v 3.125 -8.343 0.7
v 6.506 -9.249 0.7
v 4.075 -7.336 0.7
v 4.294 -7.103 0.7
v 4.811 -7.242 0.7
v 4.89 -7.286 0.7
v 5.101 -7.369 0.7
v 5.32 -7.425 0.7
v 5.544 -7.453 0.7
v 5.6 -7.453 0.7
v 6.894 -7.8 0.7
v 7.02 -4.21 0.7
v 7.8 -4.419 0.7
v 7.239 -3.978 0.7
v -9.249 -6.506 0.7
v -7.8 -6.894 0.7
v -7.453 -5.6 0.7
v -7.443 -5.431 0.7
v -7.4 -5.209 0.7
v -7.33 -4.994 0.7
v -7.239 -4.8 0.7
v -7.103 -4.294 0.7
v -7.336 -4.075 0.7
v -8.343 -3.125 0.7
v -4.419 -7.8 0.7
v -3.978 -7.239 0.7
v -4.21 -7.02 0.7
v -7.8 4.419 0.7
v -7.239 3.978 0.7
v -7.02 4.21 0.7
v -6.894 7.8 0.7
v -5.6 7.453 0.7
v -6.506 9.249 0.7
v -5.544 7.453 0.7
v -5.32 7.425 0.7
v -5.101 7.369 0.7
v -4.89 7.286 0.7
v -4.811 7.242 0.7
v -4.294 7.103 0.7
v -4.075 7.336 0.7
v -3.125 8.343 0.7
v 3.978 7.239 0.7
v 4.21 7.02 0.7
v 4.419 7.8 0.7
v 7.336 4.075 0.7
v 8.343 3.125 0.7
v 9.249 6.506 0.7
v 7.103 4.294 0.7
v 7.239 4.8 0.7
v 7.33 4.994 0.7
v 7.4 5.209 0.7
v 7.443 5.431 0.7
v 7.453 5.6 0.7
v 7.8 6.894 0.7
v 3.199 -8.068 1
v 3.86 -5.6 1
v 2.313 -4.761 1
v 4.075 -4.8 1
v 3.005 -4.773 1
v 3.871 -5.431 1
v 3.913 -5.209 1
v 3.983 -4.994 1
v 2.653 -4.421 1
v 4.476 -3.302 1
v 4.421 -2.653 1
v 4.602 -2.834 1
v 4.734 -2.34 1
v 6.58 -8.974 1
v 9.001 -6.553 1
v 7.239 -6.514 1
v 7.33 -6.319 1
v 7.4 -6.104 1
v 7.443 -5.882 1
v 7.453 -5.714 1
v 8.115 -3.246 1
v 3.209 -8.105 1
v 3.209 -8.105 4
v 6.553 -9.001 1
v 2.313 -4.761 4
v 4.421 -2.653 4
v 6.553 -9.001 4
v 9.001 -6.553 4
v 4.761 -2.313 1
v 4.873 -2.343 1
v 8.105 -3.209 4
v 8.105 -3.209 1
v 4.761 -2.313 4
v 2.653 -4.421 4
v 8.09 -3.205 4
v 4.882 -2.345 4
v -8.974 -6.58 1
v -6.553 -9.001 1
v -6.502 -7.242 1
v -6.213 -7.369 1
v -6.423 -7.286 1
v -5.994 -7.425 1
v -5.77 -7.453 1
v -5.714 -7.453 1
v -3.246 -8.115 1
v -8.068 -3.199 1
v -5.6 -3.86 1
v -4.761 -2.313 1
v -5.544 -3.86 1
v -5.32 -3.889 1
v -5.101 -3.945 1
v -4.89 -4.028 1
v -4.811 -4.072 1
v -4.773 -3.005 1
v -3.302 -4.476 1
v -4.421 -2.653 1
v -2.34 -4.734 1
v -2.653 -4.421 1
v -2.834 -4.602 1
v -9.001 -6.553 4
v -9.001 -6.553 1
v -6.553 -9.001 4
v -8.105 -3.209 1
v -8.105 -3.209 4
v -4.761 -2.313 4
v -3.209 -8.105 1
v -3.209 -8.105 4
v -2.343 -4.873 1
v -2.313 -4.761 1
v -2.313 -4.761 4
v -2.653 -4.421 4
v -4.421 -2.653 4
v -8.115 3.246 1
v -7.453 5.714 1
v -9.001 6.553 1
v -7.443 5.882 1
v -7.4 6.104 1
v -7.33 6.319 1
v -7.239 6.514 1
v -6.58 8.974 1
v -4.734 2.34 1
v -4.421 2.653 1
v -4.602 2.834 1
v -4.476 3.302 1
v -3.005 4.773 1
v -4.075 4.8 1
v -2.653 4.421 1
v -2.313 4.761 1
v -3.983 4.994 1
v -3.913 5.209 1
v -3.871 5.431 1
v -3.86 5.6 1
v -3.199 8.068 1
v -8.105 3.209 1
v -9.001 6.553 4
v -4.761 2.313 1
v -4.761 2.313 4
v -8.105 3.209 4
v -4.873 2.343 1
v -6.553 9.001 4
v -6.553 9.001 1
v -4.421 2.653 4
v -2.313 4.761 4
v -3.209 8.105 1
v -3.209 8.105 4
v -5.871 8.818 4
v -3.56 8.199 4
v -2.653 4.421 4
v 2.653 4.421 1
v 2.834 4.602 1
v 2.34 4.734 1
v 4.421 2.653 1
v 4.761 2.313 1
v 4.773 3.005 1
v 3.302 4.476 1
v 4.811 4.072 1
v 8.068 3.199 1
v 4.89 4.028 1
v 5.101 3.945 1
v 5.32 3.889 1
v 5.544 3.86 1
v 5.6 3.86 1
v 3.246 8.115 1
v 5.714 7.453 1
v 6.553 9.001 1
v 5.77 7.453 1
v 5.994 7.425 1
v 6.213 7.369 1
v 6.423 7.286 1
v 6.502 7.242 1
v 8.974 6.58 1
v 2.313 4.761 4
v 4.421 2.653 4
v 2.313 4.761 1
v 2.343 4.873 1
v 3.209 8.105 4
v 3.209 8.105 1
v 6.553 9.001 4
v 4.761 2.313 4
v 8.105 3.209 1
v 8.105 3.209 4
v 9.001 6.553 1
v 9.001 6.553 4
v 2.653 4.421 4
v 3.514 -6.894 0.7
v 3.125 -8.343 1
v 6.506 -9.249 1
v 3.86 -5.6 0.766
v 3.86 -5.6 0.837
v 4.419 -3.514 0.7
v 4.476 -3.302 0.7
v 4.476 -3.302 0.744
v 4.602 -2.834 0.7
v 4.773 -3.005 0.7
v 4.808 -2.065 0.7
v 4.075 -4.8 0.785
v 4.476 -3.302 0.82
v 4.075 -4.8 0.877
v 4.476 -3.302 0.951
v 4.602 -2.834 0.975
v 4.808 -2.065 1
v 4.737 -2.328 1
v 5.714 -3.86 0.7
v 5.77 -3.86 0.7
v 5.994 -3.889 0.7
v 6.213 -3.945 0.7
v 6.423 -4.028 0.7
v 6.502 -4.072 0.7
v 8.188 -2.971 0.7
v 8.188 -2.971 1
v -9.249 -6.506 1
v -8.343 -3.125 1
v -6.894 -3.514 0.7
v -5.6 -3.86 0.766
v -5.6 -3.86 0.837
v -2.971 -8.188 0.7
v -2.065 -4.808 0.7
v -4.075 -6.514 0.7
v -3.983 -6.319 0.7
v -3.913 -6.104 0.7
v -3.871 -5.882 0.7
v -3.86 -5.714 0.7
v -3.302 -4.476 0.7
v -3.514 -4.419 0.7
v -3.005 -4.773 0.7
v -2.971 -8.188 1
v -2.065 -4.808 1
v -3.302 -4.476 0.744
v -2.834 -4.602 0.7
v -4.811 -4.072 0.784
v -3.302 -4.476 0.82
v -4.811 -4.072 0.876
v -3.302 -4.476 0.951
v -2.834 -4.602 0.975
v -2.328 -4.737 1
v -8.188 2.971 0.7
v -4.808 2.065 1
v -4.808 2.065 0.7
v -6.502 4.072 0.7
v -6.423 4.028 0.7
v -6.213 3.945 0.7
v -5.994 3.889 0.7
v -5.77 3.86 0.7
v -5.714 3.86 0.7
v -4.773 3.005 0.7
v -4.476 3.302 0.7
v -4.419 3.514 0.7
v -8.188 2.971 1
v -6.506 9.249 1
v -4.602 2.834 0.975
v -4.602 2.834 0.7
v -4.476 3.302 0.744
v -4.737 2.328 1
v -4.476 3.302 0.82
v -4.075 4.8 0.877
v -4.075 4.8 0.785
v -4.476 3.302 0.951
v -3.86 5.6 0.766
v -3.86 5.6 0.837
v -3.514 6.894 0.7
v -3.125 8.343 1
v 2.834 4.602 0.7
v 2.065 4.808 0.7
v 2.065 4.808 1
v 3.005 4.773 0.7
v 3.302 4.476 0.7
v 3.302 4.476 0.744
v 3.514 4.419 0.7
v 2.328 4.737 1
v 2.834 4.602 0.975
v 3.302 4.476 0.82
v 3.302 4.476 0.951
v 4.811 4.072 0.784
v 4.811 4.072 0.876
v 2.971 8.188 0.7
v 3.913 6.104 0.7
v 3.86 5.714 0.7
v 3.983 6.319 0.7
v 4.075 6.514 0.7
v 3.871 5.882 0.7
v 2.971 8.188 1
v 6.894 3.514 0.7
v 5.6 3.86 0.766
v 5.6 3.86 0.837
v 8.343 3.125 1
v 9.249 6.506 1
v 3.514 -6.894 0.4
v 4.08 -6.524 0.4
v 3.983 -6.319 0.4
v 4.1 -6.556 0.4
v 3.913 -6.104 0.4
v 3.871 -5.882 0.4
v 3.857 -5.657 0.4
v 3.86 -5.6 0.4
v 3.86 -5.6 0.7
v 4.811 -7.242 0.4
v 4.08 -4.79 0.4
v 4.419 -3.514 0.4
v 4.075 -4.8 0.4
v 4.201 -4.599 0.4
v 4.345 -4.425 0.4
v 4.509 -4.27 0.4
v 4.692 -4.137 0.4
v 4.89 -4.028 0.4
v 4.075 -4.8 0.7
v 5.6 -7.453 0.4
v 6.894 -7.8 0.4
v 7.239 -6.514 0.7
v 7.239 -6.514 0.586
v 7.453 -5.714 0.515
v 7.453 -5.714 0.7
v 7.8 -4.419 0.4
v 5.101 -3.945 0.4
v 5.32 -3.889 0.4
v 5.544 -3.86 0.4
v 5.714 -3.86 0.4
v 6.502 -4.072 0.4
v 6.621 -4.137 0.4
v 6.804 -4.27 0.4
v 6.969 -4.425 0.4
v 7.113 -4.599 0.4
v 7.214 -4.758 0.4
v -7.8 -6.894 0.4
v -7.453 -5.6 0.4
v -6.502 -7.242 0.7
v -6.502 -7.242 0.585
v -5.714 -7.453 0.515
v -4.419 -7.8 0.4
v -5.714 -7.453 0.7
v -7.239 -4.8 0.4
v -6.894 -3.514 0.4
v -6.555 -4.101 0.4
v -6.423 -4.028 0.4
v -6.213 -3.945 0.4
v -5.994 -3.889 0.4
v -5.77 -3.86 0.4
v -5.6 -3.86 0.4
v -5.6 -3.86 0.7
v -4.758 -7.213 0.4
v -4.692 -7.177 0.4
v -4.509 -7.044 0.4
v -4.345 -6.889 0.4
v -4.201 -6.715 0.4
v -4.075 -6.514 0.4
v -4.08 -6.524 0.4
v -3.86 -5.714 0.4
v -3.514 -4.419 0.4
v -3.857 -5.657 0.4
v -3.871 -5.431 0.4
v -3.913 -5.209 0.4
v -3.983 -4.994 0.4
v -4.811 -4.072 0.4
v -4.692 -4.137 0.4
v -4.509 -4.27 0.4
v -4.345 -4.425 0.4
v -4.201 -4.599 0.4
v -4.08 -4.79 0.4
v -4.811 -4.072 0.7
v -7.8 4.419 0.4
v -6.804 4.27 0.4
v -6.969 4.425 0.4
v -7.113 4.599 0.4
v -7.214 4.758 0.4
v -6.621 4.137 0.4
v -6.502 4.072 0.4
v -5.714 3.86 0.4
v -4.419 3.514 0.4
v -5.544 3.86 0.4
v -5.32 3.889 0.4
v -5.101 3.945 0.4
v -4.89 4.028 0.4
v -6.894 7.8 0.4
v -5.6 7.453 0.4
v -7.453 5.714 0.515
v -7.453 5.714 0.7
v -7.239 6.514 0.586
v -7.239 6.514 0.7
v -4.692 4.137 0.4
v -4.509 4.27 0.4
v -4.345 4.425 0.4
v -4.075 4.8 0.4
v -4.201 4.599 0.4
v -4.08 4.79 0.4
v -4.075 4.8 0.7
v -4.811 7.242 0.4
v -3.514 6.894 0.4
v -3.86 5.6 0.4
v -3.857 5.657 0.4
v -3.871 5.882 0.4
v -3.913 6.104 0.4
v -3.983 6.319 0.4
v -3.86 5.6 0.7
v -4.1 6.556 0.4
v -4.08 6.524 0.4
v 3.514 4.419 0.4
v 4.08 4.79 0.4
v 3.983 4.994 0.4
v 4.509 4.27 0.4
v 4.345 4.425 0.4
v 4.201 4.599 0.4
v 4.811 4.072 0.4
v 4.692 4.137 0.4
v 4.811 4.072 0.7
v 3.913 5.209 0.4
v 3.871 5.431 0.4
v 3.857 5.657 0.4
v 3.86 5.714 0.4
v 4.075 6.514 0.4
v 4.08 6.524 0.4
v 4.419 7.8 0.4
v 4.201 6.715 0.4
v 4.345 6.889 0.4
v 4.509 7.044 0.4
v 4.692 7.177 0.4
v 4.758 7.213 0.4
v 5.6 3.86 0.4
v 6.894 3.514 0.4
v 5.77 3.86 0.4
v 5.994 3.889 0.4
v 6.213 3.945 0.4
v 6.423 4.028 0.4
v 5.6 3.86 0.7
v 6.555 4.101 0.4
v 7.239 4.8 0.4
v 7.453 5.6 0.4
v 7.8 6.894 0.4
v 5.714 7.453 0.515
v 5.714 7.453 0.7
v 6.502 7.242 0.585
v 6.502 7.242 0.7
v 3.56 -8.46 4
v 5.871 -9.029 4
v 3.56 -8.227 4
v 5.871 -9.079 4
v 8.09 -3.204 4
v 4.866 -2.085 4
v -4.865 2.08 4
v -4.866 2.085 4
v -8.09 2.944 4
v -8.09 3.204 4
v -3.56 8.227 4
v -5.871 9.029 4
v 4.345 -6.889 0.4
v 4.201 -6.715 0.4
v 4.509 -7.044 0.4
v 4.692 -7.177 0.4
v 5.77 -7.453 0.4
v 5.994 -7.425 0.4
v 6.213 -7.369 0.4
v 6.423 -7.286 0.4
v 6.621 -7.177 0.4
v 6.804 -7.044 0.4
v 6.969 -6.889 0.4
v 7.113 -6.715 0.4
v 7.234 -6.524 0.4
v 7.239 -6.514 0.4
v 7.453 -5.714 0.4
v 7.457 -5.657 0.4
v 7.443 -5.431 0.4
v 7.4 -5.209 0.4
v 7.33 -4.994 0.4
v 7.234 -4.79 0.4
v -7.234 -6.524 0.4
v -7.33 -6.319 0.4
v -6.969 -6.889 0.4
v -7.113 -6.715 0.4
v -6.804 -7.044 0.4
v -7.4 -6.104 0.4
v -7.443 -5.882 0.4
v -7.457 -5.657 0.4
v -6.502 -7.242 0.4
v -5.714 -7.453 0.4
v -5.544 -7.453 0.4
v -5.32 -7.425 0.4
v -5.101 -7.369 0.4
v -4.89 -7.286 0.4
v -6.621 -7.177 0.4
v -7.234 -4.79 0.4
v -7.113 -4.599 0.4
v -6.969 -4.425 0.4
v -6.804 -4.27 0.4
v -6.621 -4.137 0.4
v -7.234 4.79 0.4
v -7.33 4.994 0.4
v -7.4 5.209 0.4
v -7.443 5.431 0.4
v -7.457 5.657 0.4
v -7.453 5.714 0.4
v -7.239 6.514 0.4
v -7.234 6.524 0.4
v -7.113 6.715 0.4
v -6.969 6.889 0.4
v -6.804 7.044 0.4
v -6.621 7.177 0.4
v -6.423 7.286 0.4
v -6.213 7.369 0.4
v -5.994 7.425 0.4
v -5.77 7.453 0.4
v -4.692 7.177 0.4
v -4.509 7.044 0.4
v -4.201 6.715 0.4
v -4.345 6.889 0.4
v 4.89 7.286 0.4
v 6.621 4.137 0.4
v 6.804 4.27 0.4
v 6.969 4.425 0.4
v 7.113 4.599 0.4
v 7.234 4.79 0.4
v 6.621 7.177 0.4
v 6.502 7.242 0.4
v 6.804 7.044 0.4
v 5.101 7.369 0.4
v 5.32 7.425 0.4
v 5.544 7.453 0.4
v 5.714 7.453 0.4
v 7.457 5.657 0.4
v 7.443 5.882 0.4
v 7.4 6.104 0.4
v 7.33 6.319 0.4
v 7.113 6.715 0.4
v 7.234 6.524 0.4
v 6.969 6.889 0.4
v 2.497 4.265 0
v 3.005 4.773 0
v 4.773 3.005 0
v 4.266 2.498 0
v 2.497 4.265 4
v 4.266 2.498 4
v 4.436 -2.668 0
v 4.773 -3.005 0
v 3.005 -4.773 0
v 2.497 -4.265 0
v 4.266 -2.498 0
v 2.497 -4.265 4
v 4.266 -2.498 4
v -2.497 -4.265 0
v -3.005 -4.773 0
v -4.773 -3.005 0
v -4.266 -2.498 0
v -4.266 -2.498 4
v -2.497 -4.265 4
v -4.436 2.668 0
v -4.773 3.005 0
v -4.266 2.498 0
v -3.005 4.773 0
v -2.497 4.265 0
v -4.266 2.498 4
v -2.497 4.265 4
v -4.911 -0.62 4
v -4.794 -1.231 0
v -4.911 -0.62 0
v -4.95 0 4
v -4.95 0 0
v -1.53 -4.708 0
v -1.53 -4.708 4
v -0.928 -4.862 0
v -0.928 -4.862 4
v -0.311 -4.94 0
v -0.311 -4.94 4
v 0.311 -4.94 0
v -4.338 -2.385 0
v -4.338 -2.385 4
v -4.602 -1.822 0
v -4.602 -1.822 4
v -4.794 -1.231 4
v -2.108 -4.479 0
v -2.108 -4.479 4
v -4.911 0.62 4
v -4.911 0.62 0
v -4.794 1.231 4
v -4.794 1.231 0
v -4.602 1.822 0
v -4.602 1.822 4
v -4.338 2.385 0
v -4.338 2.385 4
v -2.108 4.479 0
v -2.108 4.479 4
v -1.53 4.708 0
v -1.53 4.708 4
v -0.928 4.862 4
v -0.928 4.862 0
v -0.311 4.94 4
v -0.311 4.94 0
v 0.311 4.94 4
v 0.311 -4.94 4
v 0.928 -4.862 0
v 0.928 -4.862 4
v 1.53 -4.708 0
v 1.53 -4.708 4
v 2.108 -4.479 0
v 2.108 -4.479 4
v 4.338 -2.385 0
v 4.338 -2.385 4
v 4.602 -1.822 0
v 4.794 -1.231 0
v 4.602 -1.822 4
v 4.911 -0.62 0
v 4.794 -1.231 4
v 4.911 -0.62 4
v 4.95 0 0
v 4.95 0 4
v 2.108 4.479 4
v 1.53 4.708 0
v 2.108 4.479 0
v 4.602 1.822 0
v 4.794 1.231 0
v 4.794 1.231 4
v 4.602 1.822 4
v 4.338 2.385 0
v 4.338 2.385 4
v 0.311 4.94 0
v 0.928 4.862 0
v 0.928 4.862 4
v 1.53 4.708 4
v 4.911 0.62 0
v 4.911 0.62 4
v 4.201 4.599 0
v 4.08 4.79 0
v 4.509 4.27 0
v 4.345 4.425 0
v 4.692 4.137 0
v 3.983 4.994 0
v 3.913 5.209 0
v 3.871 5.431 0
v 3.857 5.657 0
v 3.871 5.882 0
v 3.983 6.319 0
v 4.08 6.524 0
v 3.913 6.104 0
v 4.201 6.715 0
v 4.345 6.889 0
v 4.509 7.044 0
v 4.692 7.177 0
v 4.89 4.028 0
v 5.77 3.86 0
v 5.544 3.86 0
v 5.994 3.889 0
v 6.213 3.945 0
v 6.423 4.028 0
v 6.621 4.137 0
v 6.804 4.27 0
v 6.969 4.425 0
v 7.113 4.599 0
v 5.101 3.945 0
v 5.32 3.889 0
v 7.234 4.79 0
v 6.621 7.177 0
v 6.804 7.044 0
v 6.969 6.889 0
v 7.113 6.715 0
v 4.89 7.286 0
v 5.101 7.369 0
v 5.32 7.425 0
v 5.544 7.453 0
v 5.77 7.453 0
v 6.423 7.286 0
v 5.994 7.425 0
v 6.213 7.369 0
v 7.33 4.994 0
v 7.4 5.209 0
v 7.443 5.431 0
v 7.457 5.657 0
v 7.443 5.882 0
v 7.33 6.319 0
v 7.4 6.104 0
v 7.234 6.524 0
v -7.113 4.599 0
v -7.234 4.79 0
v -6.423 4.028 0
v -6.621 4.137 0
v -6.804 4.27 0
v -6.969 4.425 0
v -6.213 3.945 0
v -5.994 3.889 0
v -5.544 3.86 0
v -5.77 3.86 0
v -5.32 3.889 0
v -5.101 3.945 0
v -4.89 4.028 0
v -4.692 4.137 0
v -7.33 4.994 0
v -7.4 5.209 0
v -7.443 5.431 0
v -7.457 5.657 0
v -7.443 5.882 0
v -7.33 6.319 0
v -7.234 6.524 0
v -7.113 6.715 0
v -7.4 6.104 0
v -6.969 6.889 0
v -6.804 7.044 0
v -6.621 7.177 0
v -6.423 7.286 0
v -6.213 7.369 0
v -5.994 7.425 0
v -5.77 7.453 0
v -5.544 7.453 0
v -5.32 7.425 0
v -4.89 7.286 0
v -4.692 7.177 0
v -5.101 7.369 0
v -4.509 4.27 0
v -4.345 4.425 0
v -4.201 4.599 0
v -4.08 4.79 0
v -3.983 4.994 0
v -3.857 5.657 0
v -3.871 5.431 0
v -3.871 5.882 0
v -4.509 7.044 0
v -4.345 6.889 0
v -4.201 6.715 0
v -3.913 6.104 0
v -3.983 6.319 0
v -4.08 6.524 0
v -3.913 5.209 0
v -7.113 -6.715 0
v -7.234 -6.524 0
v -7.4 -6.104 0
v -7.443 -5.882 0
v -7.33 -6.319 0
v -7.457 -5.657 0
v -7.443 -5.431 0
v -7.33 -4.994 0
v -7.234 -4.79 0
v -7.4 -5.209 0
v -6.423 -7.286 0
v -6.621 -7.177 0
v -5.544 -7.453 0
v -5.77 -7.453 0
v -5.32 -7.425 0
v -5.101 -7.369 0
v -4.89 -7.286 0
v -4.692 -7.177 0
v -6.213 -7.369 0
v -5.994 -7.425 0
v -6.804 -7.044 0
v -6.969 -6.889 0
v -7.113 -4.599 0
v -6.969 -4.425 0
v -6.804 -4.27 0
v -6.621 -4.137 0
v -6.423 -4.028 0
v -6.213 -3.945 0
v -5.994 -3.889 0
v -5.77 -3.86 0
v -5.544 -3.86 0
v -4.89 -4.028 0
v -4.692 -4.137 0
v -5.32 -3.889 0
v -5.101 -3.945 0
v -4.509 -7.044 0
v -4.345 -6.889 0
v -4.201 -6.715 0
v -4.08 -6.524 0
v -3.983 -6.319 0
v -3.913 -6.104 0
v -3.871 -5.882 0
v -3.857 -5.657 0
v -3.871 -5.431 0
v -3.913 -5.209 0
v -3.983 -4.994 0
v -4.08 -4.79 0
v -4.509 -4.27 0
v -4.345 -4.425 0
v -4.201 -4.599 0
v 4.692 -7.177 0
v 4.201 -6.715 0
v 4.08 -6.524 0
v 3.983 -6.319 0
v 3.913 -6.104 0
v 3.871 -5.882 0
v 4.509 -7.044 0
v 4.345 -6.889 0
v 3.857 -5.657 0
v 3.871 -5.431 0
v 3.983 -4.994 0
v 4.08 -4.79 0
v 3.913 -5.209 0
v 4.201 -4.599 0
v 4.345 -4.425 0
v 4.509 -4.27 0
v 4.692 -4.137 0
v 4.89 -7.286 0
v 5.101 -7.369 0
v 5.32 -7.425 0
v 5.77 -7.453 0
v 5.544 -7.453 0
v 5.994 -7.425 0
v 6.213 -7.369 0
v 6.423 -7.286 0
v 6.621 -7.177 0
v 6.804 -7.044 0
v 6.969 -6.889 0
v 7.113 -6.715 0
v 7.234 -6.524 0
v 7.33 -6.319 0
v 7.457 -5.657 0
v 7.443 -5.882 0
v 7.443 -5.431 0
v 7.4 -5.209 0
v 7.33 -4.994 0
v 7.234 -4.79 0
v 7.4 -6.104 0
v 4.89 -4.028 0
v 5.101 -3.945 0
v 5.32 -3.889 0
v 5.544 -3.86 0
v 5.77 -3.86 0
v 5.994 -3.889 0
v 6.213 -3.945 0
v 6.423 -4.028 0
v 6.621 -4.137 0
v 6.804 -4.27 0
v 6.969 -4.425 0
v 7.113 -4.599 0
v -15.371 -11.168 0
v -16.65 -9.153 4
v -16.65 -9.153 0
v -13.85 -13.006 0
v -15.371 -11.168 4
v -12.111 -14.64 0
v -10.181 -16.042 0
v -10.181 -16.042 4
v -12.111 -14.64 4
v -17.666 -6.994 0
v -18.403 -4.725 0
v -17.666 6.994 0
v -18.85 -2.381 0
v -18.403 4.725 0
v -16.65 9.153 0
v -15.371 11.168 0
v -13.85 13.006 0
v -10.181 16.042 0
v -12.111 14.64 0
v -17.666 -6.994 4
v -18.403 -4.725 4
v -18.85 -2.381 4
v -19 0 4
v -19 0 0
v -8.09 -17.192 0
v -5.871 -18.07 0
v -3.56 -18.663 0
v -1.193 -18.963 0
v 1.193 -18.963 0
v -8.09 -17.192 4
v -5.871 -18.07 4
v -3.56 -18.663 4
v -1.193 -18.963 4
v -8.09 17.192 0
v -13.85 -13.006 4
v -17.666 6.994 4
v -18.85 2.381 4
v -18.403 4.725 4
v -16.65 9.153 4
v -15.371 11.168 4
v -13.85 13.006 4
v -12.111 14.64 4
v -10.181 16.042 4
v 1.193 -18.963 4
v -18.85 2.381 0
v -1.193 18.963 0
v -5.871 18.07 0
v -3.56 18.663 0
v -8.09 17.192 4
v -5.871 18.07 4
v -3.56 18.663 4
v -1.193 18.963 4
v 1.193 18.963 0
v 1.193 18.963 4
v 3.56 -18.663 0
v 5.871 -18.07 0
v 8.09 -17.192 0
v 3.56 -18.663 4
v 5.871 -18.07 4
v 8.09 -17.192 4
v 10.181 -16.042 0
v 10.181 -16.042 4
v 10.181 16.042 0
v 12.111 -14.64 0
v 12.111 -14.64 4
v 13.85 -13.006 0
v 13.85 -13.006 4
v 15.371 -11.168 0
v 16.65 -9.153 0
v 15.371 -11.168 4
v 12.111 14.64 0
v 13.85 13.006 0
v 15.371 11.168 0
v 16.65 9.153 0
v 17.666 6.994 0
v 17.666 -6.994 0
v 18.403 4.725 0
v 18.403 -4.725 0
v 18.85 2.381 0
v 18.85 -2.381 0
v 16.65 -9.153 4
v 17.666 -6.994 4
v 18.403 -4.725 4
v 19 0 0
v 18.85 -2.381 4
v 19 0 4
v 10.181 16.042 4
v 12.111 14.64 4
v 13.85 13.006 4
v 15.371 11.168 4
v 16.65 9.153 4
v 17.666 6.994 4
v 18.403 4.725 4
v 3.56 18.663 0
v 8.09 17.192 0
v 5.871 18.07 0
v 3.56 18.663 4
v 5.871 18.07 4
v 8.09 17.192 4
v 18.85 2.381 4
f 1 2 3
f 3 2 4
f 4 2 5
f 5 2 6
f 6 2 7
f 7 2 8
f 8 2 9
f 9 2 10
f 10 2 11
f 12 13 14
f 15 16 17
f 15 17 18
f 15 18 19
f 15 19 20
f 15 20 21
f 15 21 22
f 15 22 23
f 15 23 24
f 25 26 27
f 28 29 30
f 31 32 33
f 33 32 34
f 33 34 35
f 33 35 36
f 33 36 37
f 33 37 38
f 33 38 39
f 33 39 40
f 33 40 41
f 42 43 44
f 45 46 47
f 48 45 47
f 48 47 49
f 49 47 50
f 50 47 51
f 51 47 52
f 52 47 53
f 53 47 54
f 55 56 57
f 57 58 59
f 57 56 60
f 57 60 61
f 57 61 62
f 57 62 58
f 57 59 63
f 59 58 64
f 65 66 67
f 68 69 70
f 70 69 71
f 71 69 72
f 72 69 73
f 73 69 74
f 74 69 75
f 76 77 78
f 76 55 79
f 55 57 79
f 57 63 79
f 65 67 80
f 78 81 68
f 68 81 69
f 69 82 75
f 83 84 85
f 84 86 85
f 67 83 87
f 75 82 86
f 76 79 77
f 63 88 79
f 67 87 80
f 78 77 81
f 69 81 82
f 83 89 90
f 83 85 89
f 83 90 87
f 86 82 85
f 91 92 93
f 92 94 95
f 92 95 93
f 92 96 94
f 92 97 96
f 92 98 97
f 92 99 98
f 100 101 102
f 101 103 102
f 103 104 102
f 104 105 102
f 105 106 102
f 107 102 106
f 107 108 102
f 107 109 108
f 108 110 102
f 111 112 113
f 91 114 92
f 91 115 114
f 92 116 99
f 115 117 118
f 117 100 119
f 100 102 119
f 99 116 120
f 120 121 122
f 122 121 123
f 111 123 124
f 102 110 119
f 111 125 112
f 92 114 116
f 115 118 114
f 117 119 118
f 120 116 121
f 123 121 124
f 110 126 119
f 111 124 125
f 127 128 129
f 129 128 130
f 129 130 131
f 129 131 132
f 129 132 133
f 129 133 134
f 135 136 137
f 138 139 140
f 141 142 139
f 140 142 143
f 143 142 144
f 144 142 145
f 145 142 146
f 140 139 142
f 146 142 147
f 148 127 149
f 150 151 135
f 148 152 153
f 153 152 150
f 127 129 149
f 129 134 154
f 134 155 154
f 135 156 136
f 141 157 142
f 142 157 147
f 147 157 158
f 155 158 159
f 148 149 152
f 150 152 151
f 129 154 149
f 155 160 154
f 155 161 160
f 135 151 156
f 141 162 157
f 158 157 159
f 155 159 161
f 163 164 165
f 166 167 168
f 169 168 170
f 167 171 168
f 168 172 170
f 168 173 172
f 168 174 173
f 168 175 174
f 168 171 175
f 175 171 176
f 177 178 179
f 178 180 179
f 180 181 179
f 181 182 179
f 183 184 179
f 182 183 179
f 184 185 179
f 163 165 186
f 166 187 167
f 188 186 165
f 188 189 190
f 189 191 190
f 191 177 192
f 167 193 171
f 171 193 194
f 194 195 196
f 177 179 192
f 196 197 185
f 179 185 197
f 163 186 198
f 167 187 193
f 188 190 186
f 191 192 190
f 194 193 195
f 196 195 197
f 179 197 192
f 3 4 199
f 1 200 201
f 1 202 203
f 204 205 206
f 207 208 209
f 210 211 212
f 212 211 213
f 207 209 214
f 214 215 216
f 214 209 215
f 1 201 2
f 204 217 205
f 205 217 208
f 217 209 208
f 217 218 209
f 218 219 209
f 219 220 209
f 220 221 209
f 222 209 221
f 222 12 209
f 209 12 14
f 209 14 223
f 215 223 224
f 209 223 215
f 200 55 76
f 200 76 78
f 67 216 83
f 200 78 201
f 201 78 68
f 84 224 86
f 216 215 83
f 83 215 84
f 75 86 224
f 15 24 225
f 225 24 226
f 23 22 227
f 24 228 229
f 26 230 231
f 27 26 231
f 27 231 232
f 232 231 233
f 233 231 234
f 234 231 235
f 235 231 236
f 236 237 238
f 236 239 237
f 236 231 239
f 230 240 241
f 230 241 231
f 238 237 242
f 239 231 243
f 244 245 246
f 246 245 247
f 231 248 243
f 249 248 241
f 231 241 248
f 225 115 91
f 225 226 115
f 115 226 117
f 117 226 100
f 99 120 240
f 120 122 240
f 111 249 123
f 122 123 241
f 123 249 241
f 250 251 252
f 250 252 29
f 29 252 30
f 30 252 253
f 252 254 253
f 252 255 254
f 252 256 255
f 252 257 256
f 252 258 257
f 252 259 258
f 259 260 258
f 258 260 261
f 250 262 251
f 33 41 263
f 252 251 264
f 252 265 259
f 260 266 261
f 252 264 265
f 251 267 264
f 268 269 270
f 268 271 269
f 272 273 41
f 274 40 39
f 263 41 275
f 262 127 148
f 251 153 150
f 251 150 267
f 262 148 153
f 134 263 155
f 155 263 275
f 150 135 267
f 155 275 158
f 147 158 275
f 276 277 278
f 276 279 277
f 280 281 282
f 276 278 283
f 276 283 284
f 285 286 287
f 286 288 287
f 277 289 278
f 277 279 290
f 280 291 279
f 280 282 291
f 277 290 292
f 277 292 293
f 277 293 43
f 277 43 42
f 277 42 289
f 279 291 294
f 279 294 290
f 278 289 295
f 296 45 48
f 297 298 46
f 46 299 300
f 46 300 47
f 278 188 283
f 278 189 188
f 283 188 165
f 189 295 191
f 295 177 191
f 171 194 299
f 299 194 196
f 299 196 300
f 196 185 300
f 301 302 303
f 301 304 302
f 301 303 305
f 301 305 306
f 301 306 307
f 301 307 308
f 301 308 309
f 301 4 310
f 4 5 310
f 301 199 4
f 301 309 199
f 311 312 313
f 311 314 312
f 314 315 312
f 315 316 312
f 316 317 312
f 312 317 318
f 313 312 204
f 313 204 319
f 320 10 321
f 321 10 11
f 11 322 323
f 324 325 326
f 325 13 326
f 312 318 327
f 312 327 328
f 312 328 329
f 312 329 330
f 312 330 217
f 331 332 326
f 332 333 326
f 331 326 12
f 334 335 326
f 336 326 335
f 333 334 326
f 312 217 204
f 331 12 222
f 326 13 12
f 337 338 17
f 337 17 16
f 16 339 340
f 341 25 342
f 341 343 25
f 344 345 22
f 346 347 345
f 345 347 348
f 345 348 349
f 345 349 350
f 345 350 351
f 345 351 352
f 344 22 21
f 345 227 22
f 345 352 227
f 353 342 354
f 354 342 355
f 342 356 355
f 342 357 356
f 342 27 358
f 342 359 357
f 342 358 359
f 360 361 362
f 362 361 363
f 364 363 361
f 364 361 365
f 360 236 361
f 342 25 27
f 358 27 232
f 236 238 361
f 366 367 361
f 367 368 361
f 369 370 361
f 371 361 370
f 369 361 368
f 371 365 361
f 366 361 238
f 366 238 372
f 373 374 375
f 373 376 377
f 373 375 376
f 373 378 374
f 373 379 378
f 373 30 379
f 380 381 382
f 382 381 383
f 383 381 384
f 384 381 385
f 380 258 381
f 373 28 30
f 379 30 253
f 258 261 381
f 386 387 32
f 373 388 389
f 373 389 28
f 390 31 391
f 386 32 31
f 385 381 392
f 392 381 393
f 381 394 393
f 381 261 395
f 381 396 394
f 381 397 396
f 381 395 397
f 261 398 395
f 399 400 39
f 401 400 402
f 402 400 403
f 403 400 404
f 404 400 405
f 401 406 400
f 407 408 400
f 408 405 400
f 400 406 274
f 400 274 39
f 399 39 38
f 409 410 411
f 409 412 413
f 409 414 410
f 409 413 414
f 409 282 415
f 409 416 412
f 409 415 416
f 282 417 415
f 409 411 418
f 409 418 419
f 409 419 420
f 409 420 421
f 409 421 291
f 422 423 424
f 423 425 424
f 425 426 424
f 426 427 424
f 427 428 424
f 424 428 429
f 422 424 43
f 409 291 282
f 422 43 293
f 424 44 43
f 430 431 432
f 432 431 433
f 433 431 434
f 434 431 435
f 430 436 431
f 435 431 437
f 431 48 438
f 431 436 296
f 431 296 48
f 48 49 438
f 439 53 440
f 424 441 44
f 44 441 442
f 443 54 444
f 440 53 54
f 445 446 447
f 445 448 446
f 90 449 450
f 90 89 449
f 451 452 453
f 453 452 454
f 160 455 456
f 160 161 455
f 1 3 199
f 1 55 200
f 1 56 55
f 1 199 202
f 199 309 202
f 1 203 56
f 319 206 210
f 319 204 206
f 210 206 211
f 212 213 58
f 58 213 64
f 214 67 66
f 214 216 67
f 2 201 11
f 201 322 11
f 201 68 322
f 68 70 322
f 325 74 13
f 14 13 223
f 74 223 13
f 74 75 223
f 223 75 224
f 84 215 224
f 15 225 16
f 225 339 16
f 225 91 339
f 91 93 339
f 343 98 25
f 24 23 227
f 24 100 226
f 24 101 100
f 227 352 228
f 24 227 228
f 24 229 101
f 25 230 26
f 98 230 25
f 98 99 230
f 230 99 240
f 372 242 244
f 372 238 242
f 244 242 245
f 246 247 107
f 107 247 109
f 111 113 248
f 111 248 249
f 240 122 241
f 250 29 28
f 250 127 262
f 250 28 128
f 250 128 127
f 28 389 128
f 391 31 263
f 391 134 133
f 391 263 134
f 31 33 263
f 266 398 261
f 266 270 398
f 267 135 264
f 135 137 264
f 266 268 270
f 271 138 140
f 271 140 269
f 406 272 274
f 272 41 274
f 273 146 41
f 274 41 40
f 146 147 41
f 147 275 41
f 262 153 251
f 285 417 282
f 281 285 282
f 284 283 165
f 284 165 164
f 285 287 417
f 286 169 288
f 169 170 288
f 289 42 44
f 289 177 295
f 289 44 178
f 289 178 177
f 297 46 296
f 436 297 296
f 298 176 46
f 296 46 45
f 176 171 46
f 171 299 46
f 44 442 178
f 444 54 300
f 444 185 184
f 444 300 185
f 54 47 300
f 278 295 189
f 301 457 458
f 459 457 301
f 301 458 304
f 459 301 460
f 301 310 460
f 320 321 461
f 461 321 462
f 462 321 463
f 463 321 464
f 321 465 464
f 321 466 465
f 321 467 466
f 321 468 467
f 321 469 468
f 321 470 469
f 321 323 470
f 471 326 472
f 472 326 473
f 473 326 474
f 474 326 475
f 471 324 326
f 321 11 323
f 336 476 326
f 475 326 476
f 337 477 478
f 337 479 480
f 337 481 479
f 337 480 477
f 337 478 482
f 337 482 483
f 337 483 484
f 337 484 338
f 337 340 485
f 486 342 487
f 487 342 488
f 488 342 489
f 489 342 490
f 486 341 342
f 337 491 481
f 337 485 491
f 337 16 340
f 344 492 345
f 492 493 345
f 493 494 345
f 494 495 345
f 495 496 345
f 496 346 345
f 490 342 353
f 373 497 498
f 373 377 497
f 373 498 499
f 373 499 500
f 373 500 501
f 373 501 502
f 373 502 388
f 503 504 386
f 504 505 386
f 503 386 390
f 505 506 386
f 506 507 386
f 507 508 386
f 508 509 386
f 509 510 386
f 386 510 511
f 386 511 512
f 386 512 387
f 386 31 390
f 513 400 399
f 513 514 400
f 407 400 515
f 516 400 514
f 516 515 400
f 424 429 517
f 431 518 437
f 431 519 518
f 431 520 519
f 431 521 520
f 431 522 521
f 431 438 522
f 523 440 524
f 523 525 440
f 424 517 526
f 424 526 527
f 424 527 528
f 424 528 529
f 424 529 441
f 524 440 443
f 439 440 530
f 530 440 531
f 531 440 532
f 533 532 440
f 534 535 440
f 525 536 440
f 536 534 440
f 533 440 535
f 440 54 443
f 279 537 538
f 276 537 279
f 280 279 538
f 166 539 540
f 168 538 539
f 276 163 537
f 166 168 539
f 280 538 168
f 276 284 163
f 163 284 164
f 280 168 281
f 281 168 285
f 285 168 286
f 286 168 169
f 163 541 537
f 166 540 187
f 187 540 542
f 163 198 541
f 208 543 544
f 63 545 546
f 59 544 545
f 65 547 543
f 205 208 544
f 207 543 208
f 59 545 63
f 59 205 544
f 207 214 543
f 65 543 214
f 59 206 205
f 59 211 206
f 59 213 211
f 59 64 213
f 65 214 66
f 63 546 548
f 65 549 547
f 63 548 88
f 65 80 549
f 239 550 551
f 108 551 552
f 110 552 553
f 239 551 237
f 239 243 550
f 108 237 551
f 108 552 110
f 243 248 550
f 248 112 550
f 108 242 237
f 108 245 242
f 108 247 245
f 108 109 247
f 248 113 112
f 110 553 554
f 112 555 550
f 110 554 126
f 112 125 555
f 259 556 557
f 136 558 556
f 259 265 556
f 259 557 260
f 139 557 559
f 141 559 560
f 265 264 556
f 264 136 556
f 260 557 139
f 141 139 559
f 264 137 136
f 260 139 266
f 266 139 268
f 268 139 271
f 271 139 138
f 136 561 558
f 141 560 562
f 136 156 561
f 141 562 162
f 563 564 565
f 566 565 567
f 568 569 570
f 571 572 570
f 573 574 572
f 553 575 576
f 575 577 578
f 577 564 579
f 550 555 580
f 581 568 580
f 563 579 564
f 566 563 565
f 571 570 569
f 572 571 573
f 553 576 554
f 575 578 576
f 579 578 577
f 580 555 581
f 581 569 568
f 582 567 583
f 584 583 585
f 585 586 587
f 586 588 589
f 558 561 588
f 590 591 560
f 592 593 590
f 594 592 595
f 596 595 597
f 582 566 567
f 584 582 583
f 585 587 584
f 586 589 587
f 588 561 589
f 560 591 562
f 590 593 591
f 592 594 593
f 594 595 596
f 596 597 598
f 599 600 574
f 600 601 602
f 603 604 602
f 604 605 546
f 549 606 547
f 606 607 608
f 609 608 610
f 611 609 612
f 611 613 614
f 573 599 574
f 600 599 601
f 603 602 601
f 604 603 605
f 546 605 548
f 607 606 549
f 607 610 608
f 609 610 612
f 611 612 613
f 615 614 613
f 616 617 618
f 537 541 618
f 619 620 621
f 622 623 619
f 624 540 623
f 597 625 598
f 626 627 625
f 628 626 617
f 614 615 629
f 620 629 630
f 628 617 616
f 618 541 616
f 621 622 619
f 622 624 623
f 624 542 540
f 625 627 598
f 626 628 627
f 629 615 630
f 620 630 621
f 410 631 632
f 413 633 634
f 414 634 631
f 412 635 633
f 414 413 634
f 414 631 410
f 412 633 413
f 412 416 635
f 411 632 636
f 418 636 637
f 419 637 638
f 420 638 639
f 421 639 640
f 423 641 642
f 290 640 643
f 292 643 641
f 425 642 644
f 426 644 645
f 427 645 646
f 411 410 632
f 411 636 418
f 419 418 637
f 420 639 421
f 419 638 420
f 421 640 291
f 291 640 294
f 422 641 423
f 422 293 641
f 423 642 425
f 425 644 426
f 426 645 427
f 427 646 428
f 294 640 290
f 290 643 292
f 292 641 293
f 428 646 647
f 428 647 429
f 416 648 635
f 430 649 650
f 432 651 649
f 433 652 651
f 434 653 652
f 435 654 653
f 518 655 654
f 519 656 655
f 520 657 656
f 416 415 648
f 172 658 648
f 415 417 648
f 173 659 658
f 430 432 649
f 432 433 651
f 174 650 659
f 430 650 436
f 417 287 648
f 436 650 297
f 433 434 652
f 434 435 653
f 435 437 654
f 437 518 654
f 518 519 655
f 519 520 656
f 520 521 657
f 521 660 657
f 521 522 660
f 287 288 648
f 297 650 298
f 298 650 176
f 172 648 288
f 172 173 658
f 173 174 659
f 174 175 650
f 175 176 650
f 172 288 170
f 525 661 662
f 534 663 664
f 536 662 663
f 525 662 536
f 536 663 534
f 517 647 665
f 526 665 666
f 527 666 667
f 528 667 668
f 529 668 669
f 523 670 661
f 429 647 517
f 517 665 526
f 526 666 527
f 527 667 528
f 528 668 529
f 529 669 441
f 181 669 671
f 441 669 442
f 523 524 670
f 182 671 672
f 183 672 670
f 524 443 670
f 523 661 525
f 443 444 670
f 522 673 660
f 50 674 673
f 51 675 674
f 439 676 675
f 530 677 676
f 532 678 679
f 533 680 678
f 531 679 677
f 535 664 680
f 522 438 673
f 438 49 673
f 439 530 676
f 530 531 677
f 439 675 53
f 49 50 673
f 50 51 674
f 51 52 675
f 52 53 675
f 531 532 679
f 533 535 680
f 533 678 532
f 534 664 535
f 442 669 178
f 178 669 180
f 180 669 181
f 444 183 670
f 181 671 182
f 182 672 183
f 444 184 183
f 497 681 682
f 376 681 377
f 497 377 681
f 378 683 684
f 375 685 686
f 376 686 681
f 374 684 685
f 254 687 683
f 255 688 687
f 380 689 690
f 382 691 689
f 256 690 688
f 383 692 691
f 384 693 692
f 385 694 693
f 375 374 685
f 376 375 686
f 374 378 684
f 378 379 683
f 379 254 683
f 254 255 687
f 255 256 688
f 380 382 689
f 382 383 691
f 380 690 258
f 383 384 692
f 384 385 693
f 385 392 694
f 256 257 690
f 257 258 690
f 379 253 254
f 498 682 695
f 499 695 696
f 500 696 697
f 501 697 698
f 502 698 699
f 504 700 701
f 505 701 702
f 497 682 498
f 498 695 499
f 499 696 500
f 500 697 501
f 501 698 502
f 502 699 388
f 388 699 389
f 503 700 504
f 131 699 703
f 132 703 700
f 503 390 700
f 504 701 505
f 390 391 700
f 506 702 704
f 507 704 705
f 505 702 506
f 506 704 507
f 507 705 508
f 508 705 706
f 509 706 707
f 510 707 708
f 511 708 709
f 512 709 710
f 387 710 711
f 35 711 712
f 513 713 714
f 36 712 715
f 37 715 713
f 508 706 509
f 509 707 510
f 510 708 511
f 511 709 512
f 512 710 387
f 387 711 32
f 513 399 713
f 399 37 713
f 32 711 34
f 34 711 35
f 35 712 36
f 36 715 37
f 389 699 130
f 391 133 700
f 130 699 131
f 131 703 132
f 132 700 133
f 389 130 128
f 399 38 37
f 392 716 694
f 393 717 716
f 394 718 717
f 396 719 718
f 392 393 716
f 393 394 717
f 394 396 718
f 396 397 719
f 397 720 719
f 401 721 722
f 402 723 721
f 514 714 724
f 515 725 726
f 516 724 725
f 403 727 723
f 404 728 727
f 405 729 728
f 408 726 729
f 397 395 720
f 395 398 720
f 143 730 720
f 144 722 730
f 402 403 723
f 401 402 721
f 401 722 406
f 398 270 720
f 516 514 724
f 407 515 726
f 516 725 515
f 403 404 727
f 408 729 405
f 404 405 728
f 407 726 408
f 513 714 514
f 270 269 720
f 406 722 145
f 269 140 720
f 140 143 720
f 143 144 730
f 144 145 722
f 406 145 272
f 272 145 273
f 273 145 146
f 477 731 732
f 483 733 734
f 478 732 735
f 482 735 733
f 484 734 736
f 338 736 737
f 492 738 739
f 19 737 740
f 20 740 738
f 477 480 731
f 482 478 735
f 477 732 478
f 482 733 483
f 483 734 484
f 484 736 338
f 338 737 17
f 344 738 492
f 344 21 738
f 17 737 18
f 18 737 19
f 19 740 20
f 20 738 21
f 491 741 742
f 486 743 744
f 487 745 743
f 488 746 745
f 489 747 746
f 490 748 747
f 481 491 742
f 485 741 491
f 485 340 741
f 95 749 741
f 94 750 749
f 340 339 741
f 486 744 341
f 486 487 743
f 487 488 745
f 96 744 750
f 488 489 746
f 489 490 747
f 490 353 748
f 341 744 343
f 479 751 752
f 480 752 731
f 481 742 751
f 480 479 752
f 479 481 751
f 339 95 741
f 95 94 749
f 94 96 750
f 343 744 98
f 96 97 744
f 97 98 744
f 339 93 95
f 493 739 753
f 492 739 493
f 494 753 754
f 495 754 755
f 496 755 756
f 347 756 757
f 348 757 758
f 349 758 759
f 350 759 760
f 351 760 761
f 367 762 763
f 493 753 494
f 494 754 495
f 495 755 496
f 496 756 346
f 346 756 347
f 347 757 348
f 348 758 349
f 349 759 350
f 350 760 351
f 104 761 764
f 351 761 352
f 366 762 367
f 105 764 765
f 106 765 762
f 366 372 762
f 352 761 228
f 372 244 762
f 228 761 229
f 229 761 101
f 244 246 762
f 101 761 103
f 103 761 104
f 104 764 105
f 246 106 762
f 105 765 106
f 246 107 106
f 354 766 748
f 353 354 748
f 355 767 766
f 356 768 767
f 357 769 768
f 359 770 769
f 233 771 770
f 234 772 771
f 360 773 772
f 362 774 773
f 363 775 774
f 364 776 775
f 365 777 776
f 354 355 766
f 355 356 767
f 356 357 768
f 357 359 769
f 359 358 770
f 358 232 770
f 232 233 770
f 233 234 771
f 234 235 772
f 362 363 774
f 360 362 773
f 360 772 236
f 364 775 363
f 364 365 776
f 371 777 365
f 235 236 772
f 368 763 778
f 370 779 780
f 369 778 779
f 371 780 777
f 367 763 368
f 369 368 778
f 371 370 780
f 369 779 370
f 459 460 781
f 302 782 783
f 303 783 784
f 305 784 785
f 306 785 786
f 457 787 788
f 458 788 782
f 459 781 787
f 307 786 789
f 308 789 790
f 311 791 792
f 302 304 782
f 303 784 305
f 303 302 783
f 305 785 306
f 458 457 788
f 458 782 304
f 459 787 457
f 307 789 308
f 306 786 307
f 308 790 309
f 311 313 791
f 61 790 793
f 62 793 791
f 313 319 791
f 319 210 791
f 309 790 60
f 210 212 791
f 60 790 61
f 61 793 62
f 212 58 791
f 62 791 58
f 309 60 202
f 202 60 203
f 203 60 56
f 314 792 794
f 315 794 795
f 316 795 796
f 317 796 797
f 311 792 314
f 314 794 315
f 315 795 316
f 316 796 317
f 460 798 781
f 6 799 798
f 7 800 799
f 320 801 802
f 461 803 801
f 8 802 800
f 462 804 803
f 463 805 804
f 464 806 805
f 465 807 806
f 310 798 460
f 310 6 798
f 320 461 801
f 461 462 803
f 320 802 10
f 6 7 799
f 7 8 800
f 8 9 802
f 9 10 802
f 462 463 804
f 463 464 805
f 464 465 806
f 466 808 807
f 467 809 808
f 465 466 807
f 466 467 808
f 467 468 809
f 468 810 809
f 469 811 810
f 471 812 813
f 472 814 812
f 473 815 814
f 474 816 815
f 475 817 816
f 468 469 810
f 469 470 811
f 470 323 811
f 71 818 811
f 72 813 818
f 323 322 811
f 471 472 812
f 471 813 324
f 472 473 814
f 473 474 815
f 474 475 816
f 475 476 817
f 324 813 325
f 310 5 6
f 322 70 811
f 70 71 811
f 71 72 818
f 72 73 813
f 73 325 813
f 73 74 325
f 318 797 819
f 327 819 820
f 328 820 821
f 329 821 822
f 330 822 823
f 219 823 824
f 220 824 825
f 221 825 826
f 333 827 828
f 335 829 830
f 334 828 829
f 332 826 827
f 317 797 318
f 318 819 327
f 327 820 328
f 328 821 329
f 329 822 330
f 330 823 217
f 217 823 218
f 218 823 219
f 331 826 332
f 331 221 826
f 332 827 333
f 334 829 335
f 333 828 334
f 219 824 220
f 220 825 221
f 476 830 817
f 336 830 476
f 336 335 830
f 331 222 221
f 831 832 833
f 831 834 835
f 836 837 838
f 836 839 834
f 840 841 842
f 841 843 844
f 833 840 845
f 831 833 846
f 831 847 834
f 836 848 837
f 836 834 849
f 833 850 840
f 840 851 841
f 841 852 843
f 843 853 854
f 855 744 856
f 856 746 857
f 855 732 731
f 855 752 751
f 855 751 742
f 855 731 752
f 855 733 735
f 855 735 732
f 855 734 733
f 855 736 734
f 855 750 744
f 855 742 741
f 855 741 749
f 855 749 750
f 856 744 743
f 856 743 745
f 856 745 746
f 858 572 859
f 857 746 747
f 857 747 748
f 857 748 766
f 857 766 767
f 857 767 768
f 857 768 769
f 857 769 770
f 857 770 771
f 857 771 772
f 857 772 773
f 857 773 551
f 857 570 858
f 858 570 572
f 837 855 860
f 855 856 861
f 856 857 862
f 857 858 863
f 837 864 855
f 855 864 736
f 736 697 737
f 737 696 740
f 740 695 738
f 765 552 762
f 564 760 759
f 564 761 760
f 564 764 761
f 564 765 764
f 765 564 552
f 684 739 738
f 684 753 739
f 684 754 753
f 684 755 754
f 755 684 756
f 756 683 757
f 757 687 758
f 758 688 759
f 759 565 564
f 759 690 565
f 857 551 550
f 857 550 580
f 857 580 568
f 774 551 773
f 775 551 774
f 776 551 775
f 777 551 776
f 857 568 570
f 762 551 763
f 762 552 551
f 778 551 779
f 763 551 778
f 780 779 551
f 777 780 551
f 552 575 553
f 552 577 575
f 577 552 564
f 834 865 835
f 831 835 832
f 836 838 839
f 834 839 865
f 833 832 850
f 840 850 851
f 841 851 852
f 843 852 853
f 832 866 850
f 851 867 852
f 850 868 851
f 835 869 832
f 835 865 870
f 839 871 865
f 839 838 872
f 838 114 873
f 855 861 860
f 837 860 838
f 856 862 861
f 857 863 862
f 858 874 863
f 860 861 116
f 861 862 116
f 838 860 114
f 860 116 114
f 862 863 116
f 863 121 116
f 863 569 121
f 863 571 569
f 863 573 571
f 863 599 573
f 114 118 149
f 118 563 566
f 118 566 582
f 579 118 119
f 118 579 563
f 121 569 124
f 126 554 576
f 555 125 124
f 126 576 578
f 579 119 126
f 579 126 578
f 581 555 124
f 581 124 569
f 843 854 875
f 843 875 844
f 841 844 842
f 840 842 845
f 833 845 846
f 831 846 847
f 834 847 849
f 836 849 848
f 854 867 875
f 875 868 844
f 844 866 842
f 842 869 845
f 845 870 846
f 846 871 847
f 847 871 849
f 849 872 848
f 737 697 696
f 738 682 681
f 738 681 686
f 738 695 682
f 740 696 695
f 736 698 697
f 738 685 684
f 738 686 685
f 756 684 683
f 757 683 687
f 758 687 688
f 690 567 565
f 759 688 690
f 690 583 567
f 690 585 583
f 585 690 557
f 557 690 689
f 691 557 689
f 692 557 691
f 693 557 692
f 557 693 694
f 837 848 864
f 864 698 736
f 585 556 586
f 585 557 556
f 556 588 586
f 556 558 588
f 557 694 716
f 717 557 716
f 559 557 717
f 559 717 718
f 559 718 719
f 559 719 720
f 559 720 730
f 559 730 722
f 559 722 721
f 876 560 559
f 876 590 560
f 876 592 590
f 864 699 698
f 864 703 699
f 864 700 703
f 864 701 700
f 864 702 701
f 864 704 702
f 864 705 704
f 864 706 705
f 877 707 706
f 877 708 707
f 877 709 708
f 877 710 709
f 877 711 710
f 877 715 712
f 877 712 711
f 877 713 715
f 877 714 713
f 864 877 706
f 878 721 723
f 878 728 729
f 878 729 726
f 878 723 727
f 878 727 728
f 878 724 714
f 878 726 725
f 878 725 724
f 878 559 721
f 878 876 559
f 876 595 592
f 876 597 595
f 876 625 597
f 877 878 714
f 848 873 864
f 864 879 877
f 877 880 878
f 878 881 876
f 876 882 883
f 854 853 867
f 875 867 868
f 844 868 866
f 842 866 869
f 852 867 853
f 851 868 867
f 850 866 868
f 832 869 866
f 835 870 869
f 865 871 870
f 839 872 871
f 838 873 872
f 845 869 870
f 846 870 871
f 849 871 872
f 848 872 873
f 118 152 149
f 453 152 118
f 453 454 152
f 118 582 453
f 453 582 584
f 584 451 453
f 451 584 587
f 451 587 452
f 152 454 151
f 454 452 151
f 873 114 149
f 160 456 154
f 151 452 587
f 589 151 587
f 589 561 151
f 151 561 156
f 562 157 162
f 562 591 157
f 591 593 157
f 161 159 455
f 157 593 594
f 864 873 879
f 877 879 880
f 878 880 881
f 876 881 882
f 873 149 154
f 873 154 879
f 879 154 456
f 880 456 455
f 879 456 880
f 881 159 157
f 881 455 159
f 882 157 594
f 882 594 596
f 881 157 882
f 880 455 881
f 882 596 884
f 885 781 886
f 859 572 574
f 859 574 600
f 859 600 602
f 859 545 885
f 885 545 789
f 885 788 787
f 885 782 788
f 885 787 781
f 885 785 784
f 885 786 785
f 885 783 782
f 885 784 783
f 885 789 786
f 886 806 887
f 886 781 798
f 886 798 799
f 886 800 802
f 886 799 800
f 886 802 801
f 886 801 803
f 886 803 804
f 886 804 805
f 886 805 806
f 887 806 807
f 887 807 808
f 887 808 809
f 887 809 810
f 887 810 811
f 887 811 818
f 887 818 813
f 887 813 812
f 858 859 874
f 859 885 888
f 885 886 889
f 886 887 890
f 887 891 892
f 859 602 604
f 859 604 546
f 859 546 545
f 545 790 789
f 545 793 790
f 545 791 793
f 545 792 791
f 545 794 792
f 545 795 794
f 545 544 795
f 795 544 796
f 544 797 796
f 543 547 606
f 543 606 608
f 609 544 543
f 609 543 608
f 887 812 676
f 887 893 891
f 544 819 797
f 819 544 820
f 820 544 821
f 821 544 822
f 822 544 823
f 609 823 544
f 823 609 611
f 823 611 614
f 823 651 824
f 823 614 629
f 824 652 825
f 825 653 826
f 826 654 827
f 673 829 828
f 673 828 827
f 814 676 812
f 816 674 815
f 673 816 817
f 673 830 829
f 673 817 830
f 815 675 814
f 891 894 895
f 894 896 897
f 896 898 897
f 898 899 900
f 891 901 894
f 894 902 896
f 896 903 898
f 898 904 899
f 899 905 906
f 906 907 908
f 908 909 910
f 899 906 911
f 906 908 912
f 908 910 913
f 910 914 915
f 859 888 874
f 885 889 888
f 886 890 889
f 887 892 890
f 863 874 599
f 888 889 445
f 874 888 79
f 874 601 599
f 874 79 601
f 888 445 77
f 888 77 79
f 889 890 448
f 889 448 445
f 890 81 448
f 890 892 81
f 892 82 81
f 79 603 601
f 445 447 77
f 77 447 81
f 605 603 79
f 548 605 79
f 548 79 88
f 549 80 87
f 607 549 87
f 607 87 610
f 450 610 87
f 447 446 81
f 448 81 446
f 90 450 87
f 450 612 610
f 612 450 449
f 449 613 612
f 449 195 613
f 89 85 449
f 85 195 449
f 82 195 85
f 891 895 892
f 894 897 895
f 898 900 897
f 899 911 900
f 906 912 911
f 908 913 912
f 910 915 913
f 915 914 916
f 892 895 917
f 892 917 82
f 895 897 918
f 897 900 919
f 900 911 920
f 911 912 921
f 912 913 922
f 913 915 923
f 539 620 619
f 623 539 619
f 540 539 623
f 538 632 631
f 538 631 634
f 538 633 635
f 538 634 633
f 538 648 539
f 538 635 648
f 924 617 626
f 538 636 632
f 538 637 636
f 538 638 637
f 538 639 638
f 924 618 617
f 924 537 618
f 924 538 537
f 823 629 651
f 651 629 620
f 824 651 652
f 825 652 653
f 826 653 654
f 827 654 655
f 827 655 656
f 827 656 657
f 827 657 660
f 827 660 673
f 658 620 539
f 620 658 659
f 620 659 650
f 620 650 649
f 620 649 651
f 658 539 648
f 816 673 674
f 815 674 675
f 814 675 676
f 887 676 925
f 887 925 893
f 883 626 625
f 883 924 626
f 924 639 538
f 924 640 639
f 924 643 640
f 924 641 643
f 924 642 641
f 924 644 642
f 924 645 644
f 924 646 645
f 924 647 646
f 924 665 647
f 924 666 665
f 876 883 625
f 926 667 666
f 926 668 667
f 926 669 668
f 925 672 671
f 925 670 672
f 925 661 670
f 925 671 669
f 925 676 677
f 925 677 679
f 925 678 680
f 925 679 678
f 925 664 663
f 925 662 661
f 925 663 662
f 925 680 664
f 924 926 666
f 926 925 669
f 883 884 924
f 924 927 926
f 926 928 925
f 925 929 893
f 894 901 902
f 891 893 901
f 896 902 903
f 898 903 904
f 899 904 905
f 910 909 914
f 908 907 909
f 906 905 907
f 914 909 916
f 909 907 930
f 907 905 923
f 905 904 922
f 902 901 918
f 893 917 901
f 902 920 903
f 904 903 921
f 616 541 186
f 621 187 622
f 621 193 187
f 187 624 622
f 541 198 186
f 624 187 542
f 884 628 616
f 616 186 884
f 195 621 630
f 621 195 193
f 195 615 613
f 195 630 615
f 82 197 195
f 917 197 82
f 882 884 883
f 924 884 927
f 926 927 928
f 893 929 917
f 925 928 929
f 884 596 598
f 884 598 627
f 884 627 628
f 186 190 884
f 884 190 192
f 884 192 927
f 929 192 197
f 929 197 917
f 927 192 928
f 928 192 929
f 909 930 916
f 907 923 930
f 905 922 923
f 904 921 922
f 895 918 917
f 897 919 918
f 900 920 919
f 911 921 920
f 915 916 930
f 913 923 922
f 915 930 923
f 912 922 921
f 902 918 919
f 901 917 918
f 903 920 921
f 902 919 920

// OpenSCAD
$fn = 50;

difference() {
	union() {
		translate(v = [0, 0, 0]) {
			rotate(a = [0, 0, 0]) {
				difference() {
					union() {
						cylinder(h = 4, r = 19);
					}
					union() {
						translate(v = [5.656854249492381, 5.656854249492381, 2.5]) {
							rotate(a = [0, 0, 75]) {
								difference() {
									union() {
										translate(v = [-1.75, -3.25, -1.8]) {
											cube(size = [3.5, 6.5, 0.3]);
										}
										translate(v = [-1.75, -1.75, -2.1]) {
											cube(size = [3.5, 3.5, 0.3]);
										}
										translate(v = [-1.75, -3.25, 1.5]) {
											cube(size = [3.5, 6.5, 0.3]);
										}
										translate(v = [-1.75, -1.75, 1.8]) {
											cube(size = [3.5, 3.5, 0.3]);
										}
										translate(v = [0, 0, -1.5]) {
											linear_extrude(height = 3) {
												polygon(points = [[3.4619999999999997, 0.0], [1.7310000000000003, 2.9981799479017264], [-1.7309999999999992, 2.9981799479017264], [-3.4619999999999997, 4.2397272186481365e-16], [-1.7310000000000014, -2.998179947901726], [1.7309999999999977, -2.9981799479017277]]);
											}
										}
										translate(v = [-1.75, -3.25, -1.8]) {
											cube(size = [3.5, 6.5, 0.3]);
										}
										translate(v = [-1.75, -1.75, -2.1]) {
											cube(size = [3.5, 3.5, 0.3]);
										}
										translate(v = [-1.75, -3.25, 1.5]) {
											cube(size = [3.5, 6.5, 0.3]);
										}
										translate(v = [-1.75, -1.75, 1.8]) {
											cube(size = [3.5, 3.5, 0.3]);
										}
										translate(v = [-1.75, -3.25, -1.8]) {
											cube(size = [3.5, 6.5, 0.3]);
										}
										translate(v = [-1.75, -1.75, -2.1]) {
											cube(size = [3.5, 3.5, 0.3]);
										}
										translate(v = [-1.75, -3.25, 1.5]) {
											cube(size = [3.5, 6.5, 0.3]);
										}
										translate(v = [-1.75, -1.75, 1.8]) {
											cube(size = [3.5, 3.5, 0.3]);
										}
									}
									union();
								}
							}
						}
						translate(v = [0, 0, 0]) {
							rotate(a = [0, 0, 45]) {
								difference() {
									union() {
										translate(v = [4.5, -1.25, -1]) {
											cube(size = [1, 2.5, 6]);
										}
									}
									union();
								}
							}
						}
						translate(v = [-5.65685424949238, 5.656854249492381, 2.5]) {
							rotate(a = [0, 0, 165]) {
								difference() {
									union() {
										translate(v = [-1.75, -3.25, -1.8]) {
											cube(size = [3.5, 6.5, 0.3]);
										}
										translate(v = [-1.75, -1.75, -2.1]) {
											cube(size = [3.5, 3.5, 0.3]);
										}
										translate(v = [-1.75, -3.25, 1.5]) {
											cube(size = [3.5, 6.5, 0.3]);
										}
										translate(v = [-1.75, -1.75, 1.8]) {
											cube(size = [3.5, 3.5, 0.3]);
										}
										translate(v = [0, 0, -1.5]) {
											linear_extrude(height = 3) {
												polygon(points = [[3.4619999999999997, 0.0], [1.7310000000000003, 2.9981799479017264], [-1.7309999999999992, 2.9981799479017264], [-3.4619999999999997, 4.2397272186481365e-16], [-1.7310000000000014, -2.998179947901726], [1.7309999999999977, -2.9981799479017277]]);
											}
										}
										translate(v = [-1.75, -3.25, -1.8]) {
											cube(size = [3.5, 6.5, 0.3]);
										}
										translate(v = [-1.75, -1.75, -2.1]) {
											cube(size = [3.5, 3.5, 0.3]);
										}
										translate(v = [-1.75, -3.25, 1.5]) {
											cube(size = [3.5, 6.5, 0.3]);
										}
										translate(v = [-1.75, -1.75, 1.8]) {
											cube(size = [3.5, 3.5, 0.3]);
										}
										translate(v = [-1.75, -3.25, -1.8]) {
											cube(size = [3.5, 6.5, 0.3]);
										}
										translate(v = [-1.75, -1.75, -2.1]) {
											cube(size = [3.5, 3.5, 0.3]);
										}
										translate(v = [-1.75, -3.25, 1.5]) {
											cube(size = [3.5, 6.5, 0.3]);
										}
										translate(v = [-1.75, -1.75, 1.8]) {
											cube(size = [3.5, 3.5, 0.3]);
										}
									}
									union();
								}
							}
						}
						translate(v = [0, 0, 0]) {
							rotate(a = [0, 0, 135]) {
								difference() {
									union() {
										translate(v = [4.5, -1.25, -1]) {
											cube(size = [1, 2.5, 6]);
										}
									}
									union();
								}
							}
						}
						translate(v = [-5.6568542494923815, -5.65685424949238, 2.5]) {
							rotate(a = [0, 0, 255]) {
								difference() {
									union() {
										translate(v = [-1.75, -3.25, -1.8]) {
											cube(size = [3.5, 6.5, 0.3]);
										}
										translate(v = [-1.75, -1.75, -2.1]) {
											cube(size = [3.5, 3.5, 0.3]);
										}
										translate(v = [-1.75, -3.25, 1.5]) {
											cube(size = [3.5, 6.5, 0.3]);
										}
										translate(v = [-1.75, -1.75, 1.8]) {
											cube(size = [3.5, 3.5, 0.3]);
										}
										translate(v = [0, 0, -1.5]) {
											linear_extrude(height = 3) {
												polygon(points = [[3.4619999999999997, 0.0], [1.7310000000000003, 2.9981799479017264], [-1.7309999999999992, 2.9981799479017264], [-3.4619999999999997, 4.2397272186481365e-16], [-1.7310000000000014, -2.998179947901726], [1.7309999999999977, -2.9981799479017277]]);
											}
										}
										translate(v = [-1.75, -3.25, -1.8]) {
											cube(size = [3.5, 6.5, 0.3]);
										}
										translate(v = [-1.75, -1.75, -2.1]) {
											cube(size = [3.5, 3.5, 0.3]);
										}
										translate(v = [-1.75, -3.25, 1.5]) {
											cube(size = [3.5, 6.5, 0.3]);
										}
										translate(v = [-1.75, -1.75, 1.8]) {
											cube(size = [3.5, 3.5, 0.3]);
										}
										translate(v = [-1.75, -3.25, -1.8]) {
											cube(size = [3.5, 6.5, 0.3]);
										}
										translate(v = [-1.75, -1.75, -2.1]) {
											cube(size = [3.5, 3.5, 0.3]);
										}
										translate(v = [-1.75, -3.25, 1.5]) {
											cube(size = [3.5, 6.5, 0.3]);
										}
										translate(v = [-1.75, -1.75, 1.8]) {
											cube(size = [3.5, 3.5, 0.3]);
										}
									}
									union();
								}
							}
						}
						translate(v = [0, 0, 0]) {
							rotate(a = [0, 0, 225]) {
								difference() {
									union() {
										translate(v = [4.5, -1.25, -1]) {
											cube(size = [1, 2.5, 6]);
										}
									}
									union();
								}
							}
						}
						translate(v = [5.656854249492379, -5.6568542494923815, 2.5]) {
							rotate(a = [0, 0, 345]) {
								difference() {
									union() {
										translate(v = [-1.75, -3.25, -1.8]) {
											cube(size = [3.5, 6.5, 0.3]);
										}
										translate(v = [-1.75, -1.75, -2.1]) {
											cube(size = [3.5, 3.5, 0.3]);
										}
										translate(v = [-1.75, -3.25, 1.5]) {
											cube(size = [3.5, 6.5, 0.3]);
										}
										translate(v = [-1.75, -1.75, 1.8]) {
											cube(size = [3.5, 3.5, 0.3]);
										}
										translate(v = [0, 0, -1.5]) {
											linear_extrude(height = 3) {
												polygon(points = [[3.4619999999999997, 0.0], [1.7310000000000003, 2.9981799479017264], [-1.7309999999999992, 2.9981799479017264], [-3.4619999999999997, 4.2397272186481365e-16], [-1.7310000000000014, -2.998179947901726], [1.7309999999999977, -2.9981799479017277]]);
											}
										}
										translate(v = [-1.75, -3.25, -1.8]) {
											cube(size = [3.5, 6.5, 0.3]);
										}
										translate(v = [-1.75, -1.75, -2.1]) {
											cube(size = [3.5, 3.5, 0.3]);
										}
										translate(v = [-1.75, -3.25, 1.5]) {
											cube(size = [3.5, 6.5, 0.3]);
										}
										translate(v = [-1.75, -1.75, 1.8]) {
											cube(size = [3.5, 3.5, 0.3]);
										}
										translate(v = [-1.75, -3.25, -1.8]) {
											cube(size = [3.5, 6.5, 0.3]);
										}
										translate(v = [-1.75, -1.75, -2.1]) {
											cube(size = [3.5, 3.5, 0.3]);
										}
										translate(v = [-1.75, -3.25, 1.5]) {
											cube(size = [3.5, 6.5, 0.3]);
										}
										translate(v = [-1.75, -1.75, 1.8]) {
											cube(size = [3.5, 3.5, 0.3]);
										}
									}
									union();
								}
							}
						}
						translate(v = [0, 0, 0]) {
							rotate(a = [0, 0, 315]) {
								difference() {
									union() {
										translate(v = [4.5, -1.25, -1]) {
											cube(size = [1, 2.5, 6]);
										}
									}
									union();
								}
							}
						}
						translate(v = [0, 0, -1]) {
							cylinder(h = 6, r = 4.95);
						}
						translate(v = [5.656854249492381, 5.656854249492381, -1]) {
							cylinder(h = 6, r = 1.8);
						}
						translate(v = [-5.65685424949238, 5.656854249492381, -1]) {
							cylinder(h = 6, r = 1.8);
						}
						translate(v = [-5.6568542494923815, -5.65685424949238, -1]) {
							cylinder(h = 6, r = 1.8);
						}
						translate(v = [5.656854249492379, -5.6568542494923815, -1]) {
							cylinder(h = 6, r = 1.8);
						}
					}
				}
			}
		}
	}
	union();
}
